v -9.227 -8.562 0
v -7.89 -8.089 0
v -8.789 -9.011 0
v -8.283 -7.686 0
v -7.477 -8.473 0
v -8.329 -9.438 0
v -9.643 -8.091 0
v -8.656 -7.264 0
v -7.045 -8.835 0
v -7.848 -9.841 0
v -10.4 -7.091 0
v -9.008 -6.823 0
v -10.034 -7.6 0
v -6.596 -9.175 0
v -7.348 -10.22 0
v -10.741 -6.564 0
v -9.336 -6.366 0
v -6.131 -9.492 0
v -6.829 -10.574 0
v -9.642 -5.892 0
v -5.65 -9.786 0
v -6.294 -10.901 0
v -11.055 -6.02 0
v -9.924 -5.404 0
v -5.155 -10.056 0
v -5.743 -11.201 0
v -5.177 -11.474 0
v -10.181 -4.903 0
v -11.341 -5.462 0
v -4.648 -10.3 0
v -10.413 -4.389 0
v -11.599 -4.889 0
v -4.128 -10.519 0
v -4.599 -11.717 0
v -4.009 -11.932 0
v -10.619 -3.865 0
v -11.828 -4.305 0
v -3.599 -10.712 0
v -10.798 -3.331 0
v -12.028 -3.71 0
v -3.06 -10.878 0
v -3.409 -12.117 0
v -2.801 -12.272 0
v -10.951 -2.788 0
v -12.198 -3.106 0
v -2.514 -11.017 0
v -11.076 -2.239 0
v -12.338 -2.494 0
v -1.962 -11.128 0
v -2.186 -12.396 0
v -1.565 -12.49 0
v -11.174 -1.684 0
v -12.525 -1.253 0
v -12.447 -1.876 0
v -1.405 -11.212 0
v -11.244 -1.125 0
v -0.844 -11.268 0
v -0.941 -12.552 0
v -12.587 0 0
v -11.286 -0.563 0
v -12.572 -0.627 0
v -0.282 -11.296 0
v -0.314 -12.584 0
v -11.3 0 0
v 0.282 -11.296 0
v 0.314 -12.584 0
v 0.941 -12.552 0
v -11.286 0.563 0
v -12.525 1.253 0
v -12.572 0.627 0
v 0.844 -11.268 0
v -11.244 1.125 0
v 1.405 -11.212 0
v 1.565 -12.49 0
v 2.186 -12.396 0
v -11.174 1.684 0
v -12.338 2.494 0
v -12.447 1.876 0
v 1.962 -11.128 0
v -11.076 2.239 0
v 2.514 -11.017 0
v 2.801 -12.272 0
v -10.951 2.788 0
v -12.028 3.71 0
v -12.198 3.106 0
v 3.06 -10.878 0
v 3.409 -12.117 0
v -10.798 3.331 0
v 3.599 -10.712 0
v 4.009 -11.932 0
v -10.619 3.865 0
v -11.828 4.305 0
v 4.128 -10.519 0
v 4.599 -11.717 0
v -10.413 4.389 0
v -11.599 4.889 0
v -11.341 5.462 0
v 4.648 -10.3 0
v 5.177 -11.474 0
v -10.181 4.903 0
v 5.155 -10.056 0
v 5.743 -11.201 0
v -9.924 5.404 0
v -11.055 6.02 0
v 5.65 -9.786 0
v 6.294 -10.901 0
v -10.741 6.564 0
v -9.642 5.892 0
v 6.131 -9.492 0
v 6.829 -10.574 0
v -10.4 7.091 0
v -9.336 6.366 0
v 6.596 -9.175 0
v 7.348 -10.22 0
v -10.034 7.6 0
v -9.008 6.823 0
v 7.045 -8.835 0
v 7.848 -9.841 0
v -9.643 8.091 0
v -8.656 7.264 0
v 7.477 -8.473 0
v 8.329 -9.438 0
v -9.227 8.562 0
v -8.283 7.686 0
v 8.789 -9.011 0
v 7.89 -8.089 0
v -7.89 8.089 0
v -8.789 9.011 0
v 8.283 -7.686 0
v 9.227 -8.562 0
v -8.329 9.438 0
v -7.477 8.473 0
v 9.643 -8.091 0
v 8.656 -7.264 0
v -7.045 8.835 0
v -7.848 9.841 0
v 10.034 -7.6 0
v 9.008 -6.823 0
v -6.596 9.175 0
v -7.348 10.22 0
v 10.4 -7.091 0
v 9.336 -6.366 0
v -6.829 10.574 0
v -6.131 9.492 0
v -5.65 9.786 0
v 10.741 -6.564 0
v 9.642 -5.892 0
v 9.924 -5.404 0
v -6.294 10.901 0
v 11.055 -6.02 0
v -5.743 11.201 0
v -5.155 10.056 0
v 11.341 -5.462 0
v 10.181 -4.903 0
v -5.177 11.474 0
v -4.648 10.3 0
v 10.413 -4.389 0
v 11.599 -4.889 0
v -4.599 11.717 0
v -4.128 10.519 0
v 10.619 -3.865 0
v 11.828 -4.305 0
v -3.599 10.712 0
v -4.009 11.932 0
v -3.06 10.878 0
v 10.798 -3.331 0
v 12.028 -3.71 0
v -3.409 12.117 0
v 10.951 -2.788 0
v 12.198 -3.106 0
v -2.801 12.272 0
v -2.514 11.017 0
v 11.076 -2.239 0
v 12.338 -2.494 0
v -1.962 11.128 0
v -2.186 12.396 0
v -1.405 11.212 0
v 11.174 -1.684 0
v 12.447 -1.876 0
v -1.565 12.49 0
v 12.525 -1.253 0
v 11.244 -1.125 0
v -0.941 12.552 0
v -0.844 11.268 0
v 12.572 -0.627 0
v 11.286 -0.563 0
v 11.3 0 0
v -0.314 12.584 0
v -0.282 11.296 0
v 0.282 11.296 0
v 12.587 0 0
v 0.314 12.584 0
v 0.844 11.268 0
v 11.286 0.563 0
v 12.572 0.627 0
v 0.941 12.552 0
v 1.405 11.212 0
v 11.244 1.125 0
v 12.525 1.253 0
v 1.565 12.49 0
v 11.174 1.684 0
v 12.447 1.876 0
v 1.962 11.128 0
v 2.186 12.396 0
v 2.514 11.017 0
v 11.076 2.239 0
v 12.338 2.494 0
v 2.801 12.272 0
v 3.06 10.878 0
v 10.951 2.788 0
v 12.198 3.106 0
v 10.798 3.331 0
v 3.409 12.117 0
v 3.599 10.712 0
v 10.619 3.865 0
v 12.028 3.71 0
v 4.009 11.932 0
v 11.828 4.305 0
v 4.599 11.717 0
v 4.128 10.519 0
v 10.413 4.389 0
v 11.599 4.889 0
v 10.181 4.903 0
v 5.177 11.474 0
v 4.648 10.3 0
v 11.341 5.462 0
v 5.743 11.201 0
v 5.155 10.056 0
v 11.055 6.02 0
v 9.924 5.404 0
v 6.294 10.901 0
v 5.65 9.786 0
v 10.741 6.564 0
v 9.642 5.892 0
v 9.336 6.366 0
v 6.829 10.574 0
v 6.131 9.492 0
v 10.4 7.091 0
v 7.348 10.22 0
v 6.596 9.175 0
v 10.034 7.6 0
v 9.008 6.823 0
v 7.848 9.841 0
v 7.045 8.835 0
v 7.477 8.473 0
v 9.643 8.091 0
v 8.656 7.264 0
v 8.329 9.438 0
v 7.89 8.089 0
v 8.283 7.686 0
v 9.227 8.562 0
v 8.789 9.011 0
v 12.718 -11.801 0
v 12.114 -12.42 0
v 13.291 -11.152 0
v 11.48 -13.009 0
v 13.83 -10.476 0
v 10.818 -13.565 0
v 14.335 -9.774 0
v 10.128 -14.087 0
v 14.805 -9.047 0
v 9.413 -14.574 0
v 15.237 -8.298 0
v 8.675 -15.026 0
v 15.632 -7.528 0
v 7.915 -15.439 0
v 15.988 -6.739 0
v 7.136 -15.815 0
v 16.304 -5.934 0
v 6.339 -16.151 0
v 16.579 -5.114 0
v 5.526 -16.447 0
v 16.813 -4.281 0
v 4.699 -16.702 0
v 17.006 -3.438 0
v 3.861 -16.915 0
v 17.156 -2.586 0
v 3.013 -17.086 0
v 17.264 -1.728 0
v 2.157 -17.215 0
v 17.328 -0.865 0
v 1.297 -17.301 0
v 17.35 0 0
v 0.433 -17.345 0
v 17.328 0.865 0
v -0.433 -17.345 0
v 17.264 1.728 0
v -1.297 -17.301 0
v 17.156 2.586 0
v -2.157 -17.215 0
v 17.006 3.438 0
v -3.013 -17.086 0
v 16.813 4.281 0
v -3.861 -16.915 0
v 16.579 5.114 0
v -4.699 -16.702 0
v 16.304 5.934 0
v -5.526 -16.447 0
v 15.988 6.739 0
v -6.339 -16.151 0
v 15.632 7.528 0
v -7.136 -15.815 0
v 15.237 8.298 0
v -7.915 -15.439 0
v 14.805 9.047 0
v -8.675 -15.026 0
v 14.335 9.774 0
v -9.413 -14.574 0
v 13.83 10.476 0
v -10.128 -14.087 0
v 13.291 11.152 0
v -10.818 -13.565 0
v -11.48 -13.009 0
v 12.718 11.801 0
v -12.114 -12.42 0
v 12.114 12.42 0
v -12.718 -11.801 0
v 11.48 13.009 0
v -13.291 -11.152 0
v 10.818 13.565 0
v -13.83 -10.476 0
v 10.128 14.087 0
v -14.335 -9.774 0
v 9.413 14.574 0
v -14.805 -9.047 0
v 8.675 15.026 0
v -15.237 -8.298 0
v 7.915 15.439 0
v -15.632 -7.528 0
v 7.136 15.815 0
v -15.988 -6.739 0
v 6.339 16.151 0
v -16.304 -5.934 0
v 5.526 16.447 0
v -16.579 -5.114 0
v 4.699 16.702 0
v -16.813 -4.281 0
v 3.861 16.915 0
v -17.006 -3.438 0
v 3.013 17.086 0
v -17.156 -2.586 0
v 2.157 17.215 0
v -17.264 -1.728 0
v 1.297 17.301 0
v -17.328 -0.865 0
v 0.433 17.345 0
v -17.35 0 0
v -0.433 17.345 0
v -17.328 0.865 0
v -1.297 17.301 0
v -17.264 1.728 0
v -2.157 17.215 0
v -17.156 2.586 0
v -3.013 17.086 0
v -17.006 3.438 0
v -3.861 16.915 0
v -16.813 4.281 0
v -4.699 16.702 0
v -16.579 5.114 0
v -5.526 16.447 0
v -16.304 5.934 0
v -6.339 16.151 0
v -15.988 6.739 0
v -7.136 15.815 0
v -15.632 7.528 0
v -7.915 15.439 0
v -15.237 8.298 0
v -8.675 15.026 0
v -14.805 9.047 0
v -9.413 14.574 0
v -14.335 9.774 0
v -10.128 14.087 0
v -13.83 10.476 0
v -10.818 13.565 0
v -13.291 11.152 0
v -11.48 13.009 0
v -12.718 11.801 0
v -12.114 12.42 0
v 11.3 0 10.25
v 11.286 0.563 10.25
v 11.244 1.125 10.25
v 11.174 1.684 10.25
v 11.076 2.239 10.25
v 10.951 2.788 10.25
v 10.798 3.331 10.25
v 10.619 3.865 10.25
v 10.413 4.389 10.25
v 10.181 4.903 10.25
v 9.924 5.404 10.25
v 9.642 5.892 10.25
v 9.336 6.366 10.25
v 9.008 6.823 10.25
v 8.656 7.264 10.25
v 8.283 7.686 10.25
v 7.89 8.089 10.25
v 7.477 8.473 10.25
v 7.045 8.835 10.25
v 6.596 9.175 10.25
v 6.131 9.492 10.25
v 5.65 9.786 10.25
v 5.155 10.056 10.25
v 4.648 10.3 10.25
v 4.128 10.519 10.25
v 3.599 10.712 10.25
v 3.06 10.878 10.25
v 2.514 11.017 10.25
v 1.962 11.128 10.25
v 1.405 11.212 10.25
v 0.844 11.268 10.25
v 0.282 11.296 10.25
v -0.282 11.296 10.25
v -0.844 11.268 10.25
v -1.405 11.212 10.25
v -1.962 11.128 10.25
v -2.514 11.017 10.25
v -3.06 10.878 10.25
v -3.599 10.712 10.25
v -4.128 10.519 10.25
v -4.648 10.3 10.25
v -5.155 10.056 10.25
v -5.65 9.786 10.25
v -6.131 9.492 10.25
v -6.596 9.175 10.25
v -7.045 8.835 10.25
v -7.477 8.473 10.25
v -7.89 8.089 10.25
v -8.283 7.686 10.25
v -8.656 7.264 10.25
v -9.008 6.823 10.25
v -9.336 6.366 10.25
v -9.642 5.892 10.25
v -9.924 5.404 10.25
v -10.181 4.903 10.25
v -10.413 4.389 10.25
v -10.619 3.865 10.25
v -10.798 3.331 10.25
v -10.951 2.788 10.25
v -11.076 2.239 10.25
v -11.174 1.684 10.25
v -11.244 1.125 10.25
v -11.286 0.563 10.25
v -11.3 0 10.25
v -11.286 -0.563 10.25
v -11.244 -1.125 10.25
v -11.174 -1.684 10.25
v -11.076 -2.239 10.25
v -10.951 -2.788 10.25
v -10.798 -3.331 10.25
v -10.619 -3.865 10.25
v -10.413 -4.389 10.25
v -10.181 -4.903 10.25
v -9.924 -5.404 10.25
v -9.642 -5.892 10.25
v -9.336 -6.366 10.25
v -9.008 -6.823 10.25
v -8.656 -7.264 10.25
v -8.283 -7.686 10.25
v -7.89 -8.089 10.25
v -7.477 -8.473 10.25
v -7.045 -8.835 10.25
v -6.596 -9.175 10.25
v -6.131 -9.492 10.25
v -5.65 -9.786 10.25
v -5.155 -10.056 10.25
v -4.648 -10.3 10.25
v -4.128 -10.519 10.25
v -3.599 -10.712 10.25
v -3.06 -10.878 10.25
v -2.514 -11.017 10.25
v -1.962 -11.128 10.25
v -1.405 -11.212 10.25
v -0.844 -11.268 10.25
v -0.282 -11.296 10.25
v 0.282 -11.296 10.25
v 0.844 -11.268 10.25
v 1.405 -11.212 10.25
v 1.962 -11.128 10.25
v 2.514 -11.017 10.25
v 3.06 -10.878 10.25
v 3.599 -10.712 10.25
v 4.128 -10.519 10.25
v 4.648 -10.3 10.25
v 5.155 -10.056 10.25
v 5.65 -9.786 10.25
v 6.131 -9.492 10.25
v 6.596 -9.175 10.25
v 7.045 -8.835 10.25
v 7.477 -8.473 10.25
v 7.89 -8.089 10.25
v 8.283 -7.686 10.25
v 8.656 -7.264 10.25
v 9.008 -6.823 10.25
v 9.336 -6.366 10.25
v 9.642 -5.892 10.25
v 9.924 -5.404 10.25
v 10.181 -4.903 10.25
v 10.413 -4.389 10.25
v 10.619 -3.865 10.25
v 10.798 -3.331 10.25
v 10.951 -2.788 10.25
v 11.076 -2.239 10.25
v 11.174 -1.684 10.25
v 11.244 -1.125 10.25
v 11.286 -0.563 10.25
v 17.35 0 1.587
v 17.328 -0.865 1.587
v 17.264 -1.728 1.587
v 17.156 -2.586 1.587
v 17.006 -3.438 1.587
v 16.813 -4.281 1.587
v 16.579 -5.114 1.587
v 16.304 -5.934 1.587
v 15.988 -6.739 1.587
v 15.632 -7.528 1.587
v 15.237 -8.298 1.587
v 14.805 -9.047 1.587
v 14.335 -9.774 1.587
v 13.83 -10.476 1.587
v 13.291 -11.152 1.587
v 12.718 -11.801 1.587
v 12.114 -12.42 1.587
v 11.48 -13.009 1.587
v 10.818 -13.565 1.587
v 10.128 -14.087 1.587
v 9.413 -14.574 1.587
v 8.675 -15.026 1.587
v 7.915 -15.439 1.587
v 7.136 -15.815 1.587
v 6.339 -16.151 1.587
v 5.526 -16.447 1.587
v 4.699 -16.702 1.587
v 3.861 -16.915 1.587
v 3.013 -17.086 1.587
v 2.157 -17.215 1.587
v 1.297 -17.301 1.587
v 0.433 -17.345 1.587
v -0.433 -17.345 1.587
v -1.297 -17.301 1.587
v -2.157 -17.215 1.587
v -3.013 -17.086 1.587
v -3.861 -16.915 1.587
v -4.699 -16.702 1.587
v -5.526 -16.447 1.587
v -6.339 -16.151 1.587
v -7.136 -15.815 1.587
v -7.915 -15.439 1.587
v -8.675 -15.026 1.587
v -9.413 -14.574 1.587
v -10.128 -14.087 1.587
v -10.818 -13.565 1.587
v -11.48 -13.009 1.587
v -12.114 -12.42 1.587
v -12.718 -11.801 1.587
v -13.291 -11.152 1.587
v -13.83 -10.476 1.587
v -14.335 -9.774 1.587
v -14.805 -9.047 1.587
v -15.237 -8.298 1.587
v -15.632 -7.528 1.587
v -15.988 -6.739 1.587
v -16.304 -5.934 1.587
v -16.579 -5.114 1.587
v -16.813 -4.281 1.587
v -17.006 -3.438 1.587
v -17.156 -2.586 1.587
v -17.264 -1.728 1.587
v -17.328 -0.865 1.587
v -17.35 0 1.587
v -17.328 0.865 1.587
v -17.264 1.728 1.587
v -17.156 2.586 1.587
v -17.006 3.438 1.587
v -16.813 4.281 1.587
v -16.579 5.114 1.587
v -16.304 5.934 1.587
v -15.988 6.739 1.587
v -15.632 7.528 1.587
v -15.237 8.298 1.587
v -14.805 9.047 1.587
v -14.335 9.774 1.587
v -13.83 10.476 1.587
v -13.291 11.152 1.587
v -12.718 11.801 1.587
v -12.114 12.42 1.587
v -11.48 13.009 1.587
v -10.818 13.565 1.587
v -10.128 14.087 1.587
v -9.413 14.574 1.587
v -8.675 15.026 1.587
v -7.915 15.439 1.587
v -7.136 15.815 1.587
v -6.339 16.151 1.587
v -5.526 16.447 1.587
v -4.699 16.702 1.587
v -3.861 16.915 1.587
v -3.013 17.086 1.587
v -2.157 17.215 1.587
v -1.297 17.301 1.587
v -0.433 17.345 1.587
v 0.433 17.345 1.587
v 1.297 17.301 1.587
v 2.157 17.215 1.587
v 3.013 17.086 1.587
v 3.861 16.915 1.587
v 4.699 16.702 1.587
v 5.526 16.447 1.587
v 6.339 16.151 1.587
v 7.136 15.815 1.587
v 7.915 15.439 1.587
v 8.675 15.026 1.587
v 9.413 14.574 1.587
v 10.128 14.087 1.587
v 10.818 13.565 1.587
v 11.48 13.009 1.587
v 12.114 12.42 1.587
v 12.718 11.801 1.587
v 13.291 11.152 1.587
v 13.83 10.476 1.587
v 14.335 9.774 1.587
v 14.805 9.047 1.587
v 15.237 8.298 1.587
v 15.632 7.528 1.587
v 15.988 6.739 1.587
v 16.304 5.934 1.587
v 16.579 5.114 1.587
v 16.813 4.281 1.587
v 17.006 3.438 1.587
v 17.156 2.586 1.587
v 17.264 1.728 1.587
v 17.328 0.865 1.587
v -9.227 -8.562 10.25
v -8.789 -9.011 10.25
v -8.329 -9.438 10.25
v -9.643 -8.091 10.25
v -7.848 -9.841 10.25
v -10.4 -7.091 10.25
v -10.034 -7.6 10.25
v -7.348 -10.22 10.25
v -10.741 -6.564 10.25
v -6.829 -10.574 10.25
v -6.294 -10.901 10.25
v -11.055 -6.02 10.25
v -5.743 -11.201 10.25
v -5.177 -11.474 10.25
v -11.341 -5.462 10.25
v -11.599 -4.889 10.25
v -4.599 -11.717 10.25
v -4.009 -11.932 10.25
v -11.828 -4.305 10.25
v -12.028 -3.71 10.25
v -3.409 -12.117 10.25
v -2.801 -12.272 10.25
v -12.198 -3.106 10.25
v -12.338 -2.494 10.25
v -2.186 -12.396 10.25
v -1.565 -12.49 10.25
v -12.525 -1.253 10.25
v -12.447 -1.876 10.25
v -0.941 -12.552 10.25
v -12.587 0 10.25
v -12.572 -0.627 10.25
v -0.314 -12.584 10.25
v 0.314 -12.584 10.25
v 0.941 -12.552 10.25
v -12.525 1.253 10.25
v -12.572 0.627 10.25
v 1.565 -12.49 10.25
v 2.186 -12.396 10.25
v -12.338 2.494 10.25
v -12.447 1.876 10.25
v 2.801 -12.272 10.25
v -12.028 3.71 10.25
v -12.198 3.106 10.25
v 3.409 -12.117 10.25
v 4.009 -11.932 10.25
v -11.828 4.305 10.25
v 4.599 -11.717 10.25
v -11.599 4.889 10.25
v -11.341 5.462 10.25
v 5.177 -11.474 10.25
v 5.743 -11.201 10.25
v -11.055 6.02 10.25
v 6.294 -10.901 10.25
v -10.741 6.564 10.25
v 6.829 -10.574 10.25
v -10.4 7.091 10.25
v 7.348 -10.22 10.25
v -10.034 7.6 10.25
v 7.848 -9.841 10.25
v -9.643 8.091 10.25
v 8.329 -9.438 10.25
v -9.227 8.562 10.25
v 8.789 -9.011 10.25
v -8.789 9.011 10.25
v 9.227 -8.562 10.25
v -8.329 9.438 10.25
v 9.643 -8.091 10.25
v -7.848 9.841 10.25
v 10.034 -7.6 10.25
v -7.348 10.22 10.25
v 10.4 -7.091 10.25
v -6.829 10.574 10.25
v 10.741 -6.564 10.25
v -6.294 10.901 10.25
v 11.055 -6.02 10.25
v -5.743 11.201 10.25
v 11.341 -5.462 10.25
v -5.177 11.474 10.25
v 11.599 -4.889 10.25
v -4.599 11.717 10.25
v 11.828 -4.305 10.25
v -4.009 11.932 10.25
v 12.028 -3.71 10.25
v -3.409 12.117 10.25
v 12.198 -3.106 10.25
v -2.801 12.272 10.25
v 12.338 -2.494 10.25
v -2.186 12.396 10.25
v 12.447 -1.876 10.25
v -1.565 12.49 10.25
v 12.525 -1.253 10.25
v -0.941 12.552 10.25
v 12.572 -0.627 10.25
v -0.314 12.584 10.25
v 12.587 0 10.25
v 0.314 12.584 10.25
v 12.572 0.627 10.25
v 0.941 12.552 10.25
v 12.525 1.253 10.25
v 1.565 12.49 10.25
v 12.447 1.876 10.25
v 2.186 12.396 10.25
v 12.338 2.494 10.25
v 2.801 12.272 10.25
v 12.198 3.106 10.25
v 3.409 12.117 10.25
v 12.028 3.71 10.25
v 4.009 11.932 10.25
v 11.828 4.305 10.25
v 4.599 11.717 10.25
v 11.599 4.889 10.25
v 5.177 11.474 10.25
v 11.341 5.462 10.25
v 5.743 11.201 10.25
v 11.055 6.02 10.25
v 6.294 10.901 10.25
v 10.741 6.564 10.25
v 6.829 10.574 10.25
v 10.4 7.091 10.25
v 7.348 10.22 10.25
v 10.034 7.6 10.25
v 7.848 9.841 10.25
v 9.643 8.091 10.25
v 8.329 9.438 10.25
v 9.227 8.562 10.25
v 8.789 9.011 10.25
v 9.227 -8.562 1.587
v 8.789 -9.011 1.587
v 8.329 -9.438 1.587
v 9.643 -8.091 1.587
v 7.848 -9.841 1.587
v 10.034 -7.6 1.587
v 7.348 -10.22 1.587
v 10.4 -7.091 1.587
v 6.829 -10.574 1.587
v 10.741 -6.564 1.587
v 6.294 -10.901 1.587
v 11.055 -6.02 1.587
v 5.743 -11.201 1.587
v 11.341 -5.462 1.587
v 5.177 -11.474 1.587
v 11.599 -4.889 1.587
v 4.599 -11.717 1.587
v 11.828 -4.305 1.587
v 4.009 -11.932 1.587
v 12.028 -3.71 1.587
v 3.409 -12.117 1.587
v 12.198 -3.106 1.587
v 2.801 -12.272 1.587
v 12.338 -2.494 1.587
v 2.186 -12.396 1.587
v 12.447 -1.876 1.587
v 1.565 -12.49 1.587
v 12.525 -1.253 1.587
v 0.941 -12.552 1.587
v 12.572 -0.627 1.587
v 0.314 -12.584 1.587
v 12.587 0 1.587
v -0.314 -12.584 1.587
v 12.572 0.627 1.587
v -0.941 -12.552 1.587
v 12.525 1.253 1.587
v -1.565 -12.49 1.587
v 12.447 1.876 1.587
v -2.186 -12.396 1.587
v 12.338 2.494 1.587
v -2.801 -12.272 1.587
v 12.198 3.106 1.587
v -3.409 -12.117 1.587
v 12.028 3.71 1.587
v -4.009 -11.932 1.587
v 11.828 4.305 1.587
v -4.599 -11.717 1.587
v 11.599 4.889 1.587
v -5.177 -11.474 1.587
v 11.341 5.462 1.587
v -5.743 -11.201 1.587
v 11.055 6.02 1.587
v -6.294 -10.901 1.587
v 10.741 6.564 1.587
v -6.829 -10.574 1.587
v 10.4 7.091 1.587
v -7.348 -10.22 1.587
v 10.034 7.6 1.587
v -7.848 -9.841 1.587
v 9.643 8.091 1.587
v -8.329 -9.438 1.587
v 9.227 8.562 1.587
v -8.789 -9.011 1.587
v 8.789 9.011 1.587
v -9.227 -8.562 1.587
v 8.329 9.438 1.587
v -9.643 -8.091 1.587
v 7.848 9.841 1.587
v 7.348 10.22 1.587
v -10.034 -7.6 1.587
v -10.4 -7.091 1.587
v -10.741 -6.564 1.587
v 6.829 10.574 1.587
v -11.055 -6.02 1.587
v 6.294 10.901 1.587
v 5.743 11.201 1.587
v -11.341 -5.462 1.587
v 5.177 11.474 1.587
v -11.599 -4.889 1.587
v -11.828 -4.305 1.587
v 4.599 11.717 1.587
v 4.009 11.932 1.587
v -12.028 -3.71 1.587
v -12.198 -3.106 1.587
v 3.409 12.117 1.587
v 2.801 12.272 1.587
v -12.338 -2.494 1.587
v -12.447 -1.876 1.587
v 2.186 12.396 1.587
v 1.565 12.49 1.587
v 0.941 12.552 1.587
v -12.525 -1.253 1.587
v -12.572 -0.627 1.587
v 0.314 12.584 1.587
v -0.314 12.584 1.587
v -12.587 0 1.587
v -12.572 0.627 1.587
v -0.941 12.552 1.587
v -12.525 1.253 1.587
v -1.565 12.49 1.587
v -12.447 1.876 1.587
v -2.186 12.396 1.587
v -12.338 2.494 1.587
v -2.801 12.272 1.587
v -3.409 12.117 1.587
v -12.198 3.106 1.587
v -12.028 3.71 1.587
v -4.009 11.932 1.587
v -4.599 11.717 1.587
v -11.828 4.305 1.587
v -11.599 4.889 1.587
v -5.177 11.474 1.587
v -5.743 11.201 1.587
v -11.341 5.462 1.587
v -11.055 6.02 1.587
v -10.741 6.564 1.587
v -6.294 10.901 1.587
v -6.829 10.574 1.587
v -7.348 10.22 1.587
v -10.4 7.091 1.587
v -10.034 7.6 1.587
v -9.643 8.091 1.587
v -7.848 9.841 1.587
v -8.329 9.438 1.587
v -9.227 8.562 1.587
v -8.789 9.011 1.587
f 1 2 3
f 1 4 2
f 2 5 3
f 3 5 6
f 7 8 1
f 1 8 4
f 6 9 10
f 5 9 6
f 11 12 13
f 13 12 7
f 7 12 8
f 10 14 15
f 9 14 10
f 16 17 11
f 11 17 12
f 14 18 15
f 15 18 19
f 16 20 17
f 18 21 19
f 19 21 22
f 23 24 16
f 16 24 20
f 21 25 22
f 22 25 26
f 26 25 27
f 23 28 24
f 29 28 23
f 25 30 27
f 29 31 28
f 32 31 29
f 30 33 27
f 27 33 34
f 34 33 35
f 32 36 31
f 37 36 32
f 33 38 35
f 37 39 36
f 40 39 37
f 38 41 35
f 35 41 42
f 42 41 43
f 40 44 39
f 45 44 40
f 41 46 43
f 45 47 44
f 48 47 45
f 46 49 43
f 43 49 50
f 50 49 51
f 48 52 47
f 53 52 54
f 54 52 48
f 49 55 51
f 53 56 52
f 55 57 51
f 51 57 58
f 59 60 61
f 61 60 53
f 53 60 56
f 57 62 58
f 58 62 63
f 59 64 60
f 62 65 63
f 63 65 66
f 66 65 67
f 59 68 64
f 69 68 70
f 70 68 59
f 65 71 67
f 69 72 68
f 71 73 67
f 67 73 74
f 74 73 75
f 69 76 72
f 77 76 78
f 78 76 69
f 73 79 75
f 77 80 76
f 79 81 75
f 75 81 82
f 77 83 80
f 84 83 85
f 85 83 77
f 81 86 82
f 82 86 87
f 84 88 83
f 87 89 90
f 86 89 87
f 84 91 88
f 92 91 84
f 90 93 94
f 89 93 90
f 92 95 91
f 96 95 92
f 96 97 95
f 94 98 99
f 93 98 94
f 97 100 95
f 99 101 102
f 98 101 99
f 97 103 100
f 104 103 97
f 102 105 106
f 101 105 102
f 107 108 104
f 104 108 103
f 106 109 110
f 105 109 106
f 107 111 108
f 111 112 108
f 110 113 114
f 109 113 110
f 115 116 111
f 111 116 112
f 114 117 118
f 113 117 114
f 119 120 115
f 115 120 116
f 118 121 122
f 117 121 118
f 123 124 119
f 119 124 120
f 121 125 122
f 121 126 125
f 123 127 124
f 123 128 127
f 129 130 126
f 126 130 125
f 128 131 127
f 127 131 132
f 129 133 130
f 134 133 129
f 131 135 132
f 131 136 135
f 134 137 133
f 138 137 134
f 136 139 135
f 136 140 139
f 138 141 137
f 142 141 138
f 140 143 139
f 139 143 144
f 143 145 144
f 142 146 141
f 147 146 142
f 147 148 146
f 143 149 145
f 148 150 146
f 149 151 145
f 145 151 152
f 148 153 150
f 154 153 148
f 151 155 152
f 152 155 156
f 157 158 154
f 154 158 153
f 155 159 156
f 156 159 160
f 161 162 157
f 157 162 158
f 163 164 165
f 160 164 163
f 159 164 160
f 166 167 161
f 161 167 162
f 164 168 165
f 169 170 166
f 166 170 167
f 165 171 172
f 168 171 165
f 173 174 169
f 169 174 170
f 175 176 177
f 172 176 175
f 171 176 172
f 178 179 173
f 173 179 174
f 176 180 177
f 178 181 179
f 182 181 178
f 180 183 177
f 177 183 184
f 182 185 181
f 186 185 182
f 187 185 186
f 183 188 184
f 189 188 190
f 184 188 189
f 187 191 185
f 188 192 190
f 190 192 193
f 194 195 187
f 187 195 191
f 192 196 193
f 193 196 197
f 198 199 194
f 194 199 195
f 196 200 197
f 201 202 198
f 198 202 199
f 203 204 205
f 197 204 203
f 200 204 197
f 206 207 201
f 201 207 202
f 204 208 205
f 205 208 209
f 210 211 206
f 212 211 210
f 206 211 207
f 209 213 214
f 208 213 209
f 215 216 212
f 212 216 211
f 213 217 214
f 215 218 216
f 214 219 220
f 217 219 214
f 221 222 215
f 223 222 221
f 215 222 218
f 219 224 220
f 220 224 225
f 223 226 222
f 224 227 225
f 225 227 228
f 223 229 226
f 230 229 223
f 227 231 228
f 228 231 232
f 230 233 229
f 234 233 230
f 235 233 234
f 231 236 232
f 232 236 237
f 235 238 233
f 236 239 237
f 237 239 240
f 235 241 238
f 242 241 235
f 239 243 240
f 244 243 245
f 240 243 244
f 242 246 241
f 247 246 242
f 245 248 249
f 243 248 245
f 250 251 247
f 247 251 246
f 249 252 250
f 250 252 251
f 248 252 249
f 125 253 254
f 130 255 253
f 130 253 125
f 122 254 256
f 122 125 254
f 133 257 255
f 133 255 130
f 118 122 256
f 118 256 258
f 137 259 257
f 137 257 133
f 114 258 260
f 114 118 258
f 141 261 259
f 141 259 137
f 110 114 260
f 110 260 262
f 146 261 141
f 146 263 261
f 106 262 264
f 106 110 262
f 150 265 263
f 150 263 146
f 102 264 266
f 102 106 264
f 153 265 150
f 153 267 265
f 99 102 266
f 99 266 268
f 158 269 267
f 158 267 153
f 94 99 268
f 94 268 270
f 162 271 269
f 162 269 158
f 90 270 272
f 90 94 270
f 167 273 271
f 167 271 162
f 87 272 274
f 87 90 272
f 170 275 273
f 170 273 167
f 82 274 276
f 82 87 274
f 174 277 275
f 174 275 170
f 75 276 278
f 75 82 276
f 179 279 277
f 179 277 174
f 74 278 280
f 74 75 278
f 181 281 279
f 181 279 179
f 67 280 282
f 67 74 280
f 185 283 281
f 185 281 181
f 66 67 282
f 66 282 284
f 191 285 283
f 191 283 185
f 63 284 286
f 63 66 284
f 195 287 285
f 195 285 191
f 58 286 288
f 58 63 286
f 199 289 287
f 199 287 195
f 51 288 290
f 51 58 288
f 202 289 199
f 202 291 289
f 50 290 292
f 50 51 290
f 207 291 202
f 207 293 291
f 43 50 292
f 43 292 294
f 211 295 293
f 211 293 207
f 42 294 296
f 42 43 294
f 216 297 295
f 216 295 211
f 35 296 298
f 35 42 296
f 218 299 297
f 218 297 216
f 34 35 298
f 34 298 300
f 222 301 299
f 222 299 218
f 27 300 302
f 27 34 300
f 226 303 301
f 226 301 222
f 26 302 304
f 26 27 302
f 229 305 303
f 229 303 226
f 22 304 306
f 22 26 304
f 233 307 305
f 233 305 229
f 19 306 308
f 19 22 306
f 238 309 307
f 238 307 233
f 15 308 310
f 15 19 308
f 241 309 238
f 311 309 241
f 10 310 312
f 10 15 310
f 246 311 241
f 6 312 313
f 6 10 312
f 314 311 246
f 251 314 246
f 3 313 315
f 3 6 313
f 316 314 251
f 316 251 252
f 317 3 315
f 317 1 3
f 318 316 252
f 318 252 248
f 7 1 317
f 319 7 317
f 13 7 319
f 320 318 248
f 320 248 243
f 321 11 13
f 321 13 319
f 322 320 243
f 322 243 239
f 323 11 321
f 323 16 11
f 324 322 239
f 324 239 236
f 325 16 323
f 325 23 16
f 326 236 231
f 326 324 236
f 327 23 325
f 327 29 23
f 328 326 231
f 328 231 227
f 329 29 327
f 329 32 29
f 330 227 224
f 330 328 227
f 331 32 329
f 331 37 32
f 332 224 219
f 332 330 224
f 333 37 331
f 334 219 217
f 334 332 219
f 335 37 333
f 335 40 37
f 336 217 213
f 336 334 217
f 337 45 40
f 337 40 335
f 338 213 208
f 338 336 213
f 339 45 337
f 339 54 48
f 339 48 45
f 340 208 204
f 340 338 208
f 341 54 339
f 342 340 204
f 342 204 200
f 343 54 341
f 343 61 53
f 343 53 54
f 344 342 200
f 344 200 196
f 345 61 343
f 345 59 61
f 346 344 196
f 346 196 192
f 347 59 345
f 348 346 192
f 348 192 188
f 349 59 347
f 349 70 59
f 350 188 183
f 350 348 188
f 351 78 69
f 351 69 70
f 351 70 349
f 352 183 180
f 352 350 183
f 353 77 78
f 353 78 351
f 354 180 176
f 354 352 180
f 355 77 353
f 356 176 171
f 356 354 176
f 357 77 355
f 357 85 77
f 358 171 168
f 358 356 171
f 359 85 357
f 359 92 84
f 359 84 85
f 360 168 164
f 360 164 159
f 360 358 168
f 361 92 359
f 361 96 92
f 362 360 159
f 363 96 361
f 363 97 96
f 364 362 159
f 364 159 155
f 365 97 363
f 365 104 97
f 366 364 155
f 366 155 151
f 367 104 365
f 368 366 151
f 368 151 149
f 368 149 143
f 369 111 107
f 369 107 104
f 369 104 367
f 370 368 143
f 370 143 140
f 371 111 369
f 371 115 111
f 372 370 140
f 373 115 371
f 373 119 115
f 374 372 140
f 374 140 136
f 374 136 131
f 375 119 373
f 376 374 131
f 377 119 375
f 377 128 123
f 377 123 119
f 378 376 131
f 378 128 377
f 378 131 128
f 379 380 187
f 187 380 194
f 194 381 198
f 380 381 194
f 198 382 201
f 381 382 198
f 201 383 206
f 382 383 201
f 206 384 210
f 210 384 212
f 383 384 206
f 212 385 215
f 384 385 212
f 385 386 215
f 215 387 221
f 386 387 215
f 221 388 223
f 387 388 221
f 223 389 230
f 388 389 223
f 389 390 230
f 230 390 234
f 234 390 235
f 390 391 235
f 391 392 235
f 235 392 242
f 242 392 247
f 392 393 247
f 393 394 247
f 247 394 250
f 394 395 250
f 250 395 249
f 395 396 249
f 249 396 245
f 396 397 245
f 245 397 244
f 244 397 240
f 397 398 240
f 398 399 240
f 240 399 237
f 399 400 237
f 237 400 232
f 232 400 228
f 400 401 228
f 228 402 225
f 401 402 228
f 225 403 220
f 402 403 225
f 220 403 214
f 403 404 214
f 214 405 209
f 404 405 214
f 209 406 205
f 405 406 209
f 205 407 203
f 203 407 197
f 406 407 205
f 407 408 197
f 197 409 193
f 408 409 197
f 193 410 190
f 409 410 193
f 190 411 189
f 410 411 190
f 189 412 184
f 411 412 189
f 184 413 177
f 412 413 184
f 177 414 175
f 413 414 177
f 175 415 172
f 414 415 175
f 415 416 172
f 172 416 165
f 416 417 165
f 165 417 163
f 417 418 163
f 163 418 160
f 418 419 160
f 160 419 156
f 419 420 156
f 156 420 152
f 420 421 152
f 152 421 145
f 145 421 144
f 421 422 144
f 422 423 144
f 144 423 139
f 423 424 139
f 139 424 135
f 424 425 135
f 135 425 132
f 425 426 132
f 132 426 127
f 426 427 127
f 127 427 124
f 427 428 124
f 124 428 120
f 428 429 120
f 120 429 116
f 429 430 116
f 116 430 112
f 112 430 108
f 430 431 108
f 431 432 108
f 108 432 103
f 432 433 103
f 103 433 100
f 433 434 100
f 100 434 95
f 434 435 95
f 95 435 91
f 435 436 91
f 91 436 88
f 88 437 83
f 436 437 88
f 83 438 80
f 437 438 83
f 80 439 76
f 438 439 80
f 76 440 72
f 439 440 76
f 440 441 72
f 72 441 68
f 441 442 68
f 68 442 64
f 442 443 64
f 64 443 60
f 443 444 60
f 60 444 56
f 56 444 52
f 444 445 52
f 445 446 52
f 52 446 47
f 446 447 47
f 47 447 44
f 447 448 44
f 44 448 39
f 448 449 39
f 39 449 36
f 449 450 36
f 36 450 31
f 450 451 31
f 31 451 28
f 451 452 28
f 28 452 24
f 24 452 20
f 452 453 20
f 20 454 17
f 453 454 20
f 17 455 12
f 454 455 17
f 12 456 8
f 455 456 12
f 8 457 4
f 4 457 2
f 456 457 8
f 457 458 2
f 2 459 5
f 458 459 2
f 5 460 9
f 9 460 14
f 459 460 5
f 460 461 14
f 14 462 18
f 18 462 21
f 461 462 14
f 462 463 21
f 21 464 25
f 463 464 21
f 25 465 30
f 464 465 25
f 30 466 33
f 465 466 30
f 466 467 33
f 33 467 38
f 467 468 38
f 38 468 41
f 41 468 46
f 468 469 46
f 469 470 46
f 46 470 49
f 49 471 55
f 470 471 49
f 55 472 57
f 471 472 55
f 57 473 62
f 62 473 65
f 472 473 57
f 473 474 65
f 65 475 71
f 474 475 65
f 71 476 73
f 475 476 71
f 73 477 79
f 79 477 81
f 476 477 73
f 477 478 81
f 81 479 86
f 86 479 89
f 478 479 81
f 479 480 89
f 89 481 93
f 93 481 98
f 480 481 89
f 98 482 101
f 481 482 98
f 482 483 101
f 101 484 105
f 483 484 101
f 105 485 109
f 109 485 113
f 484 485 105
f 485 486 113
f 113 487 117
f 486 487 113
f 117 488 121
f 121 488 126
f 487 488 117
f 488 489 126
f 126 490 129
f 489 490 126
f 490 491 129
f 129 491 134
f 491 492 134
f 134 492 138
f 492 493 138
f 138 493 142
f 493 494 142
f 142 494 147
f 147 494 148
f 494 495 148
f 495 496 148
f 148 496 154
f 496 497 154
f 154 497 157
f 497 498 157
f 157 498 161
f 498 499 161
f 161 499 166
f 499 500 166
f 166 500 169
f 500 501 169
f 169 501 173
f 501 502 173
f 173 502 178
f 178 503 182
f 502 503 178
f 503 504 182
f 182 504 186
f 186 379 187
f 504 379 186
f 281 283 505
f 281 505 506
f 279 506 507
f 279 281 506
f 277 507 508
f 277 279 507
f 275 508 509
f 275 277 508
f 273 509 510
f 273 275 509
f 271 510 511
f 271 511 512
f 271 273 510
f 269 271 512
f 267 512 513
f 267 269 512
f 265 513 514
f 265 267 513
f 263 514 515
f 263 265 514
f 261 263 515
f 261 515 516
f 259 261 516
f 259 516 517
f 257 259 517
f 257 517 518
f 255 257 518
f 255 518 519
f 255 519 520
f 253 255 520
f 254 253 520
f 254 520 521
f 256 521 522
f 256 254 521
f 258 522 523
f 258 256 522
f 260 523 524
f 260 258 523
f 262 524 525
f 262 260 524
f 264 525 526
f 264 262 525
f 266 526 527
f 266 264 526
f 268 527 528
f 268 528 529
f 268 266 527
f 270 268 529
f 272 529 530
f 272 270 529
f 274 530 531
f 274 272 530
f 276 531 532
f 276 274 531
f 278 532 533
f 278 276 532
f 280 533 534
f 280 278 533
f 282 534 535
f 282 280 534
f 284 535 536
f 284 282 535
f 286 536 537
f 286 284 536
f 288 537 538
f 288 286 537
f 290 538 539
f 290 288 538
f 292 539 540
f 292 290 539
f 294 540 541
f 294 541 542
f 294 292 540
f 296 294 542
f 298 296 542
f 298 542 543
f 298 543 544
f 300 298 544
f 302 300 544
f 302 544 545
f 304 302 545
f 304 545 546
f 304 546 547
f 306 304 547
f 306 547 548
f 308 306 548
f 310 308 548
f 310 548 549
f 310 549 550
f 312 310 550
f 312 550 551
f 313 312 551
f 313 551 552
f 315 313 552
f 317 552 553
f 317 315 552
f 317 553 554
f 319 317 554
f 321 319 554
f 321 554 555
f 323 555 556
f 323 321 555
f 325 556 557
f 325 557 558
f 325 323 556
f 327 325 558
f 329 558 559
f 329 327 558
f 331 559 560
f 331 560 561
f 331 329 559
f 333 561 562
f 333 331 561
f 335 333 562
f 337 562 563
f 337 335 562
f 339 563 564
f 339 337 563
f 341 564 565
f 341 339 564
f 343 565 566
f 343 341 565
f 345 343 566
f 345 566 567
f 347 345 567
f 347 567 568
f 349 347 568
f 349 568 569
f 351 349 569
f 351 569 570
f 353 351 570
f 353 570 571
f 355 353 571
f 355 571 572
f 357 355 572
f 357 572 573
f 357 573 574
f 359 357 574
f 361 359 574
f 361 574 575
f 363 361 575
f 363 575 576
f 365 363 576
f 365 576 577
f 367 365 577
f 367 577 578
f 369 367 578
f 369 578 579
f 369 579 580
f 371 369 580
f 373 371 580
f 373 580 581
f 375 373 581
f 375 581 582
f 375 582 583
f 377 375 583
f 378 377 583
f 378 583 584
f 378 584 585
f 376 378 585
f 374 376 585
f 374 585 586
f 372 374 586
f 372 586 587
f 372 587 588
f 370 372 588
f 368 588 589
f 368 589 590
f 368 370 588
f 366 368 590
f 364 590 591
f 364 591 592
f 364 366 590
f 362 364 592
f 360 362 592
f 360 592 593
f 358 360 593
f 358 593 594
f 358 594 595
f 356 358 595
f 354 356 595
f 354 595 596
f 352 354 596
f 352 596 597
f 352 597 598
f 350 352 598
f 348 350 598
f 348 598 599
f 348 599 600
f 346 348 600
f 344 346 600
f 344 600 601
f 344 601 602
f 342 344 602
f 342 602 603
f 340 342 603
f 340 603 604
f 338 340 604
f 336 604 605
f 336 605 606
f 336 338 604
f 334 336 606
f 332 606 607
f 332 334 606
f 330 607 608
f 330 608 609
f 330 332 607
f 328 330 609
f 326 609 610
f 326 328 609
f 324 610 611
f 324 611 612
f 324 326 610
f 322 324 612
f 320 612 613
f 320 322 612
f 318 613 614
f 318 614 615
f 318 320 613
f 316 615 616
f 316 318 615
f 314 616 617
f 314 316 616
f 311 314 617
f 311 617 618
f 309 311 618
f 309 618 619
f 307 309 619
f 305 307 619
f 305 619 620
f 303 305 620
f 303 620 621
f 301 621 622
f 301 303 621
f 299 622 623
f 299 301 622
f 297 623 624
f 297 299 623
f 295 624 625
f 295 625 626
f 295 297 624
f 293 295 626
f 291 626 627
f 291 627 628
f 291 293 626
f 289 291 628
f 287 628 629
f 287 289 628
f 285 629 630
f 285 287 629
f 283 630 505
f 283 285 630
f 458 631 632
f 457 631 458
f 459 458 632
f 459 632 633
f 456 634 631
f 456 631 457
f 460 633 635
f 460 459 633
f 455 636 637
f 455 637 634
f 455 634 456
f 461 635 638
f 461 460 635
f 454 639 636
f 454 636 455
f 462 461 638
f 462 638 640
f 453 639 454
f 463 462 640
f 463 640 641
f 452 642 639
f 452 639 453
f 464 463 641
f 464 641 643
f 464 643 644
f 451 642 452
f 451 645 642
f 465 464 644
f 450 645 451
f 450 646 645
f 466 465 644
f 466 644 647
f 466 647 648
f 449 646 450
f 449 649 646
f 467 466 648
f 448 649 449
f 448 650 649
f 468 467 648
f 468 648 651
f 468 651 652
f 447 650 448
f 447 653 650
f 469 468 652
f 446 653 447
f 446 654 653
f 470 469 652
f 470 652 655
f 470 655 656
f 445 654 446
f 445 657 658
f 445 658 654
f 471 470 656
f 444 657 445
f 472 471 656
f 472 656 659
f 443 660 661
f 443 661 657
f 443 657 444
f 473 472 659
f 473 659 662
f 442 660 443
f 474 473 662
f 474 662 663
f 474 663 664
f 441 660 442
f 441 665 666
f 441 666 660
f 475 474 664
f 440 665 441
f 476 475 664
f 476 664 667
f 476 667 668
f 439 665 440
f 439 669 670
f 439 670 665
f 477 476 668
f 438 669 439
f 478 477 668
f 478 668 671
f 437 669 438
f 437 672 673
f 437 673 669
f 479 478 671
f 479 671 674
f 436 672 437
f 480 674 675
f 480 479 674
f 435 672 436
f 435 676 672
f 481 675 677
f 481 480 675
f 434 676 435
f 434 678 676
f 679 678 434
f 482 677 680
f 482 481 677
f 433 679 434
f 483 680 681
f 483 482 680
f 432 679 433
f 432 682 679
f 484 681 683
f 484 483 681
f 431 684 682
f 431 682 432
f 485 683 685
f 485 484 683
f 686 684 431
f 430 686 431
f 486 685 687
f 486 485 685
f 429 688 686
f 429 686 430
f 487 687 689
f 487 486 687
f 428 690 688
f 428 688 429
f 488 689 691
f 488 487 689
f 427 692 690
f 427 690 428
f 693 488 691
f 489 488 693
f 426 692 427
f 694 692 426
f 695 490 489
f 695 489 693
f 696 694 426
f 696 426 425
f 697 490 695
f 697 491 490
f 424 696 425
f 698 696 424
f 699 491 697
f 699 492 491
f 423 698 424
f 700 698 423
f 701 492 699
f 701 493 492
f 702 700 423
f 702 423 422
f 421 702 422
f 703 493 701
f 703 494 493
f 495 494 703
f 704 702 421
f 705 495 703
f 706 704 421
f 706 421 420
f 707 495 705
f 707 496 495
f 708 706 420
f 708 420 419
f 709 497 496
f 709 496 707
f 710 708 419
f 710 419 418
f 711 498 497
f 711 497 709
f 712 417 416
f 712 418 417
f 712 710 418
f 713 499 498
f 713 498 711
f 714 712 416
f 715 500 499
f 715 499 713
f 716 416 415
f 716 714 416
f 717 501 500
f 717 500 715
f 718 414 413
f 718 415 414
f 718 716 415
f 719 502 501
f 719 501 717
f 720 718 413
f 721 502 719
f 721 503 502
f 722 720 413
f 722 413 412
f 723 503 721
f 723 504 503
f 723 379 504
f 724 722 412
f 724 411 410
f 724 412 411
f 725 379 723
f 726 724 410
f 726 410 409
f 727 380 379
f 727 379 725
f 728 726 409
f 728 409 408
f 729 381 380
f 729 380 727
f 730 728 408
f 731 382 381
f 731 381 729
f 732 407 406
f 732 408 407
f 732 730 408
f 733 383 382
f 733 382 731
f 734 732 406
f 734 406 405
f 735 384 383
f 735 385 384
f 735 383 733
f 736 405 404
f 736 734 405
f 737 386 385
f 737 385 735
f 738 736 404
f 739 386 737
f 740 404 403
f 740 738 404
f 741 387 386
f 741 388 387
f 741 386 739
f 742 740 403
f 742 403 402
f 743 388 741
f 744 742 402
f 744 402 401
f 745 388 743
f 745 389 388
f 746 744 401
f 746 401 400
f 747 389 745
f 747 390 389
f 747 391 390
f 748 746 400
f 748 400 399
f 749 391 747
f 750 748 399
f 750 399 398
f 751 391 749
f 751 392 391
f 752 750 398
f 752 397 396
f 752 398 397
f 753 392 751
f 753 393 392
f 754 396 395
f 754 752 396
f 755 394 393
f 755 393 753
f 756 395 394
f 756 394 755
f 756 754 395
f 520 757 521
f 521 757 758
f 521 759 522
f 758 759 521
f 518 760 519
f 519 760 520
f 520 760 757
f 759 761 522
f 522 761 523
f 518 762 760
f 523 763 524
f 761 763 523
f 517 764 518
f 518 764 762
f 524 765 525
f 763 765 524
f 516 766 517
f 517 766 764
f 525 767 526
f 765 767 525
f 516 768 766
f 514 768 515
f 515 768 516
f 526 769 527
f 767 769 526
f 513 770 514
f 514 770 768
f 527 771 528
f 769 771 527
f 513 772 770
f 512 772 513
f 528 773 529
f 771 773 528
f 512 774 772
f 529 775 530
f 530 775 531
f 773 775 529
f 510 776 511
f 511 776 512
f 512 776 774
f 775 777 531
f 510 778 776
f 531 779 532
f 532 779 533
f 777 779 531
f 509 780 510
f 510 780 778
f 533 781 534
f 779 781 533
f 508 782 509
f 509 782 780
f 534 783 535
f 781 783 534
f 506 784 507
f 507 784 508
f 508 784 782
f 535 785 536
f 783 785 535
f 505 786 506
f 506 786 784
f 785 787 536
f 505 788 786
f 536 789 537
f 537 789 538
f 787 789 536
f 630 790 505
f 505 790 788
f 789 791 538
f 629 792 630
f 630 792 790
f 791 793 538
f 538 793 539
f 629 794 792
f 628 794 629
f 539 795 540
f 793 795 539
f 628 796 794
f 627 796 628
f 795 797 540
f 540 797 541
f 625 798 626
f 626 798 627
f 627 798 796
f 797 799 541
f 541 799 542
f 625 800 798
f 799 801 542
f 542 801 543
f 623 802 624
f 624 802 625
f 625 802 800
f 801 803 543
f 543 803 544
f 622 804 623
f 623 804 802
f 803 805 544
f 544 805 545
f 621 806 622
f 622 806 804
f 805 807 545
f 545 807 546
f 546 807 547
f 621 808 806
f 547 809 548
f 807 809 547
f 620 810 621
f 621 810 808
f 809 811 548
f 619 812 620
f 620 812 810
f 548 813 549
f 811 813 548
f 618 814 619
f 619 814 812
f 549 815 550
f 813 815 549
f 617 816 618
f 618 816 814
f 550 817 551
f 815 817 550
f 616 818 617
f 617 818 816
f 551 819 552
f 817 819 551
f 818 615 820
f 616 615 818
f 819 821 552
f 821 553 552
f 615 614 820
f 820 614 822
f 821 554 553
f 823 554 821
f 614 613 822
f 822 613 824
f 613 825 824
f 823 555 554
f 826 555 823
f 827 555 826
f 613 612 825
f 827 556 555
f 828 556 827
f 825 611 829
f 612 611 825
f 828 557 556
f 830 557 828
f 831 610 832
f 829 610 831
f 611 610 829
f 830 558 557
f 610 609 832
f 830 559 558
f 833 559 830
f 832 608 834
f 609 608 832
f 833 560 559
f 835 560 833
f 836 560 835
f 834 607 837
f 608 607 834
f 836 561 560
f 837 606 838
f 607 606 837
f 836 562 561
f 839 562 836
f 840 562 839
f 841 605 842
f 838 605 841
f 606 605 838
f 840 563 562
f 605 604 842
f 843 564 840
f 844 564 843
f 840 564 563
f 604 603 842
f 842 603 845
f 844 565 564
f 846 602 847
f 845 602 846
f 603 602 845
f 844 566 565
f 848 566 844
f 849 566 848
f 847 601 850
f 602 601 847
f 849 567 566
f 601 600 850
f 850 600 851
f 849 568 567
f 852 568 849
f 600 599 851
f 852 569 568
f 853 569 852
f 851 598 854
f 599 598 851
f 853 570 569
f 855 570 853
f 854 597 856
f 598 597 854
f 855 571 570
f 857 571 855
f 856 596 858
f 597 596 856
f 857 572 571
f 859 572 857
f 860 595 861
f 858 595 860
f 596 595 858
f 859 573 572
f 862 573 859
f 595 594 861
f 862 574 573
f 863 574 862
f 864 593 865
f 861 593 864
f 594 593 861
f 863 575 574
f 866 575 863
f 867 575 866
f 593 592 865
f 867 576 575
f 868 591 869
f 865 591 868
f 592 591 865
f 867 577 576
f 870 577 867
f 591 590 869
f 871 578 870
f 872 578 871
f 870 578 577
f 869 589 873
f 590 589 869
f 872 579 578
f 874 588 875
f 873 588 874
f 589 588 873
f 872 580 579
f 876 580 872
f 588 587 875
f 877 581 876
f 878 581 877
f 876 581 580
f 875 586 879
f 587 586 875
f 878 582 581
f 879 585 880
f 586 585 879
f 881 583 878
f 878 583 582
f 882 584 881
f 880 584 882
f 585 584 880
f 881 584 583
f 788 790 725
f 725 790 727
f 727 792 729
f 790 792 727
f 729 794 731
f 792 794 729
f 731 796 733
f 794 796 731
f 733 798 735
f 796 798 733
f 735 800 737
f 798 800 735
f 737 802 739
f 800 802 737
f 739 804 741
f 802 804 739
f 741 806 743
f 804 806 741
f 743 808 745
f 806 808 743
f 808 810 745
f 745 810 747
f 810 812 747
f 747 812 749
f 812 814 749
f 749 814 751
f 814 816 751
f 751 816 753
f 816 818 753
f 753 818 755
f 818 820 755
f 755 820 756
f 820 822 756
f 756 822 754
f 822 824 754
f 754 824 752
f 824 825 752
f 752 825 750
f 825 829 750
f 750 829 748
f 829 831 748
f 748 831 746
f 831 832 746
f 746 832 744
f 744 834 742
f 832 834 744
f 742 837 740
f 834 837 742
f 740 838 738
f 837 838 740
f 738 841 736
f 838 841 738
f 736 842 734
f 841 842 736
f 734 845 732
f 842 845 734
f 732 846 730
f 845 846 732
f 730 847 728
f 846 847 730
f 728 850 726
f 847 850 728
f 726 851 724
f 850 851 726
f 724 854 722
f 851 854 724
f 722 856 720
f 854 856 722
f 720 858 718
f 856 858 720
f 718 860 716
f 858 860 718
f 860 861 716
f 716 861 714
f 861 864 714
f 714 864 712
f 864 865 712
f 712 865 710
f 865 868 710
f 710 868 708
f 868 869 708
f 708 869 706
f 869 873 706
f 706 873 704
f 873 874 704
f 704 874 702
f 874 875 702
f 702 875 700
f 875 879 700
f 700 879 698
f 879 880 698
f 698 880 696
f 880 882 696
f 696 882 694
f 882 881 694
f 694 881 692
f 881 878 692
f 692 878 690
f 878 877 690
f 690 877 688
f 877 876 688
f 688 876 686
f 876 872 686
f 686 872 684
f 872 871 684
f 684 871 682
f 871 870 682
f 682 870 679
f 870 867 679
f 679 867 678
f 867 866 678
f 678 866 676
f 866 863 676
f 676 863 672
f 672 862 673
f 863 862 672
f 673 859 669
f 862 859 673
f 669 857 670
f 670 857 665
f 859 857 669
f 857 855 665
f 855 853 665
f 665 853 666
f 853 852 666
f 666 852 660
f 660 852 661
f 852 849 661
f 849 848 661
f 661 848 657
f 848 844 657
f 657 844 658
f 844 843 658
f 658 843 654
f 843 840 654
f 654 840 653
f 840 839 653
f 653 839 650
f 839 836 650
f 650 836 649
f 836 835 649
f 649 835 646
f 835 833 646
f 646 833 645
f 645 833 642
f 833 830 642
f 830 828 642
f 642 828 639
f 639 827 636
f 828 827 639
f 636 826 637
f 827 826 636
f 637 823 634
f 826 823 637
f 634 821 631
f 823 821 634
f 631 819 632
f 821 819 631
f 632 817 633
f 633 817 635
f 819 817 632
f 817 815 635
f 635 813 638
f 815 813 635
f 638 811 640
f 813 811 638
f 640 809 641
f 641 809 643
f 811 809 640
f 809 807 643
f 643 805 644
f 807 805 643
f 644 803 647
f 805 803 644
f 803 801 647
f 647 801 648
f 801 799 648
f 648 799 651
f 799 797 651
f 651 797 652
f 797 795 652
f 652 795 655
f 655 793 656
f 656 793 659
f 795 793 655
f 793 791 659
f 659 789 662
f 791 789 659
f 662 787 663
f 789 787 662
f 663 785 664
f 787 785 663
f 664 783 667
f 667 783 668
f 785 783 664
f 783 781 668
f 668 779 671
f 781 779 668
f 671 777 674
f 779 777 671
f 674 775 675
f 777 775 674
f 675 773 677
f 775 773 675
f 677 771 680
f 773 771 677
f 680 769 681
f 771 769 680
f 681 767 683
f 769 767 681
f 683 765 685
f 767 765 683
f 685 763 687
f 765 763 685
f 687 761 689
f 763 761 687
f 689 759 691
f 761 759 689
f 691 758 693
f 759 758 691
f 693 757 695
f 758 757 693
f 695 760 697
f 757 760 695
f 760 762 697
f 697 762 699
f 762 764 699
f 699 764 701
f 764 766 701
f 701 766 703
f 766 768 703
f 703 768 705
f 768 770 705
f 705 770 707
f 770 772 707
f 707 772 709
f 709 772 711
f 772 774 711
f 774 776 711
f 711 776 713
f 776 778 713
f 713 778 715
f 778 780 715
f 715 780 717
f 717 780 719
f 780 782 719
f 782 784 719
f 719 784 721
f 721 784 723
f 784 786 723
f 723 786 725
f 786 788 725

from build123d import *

# Parameters (mm, degrees)
SKETCH_R        = 12.5875
PAD_DEPTH       = 10.25
SKETCH005_R     = 17.35
PAD002_DEPTH    = 1.5875
SKETCH004_R     = 11.3
POCKET002_DEPTH = 10.251


with BuildPart() as part:
    # Sketch → Pad (new body)
    with BuildSketch(Plane.XY):
        Circle(SKETCH_R)
    extrude(amount=PAD_DEPTH)

    # Sketch005 (on Face2 of Pad) → Pad002 (new body)
    with BuildSketch(Plane(origin=(0, 0, 0), x_dir=(1, 0, 0), z_dir=(0, 0, -1))):
        Circle(SKETCH005_R)
    extrude(amount=-PAD002_DEPTH)

    # Sketch004 (on Face3 of Pad) → Pocket002 (cut, through all)
    with BuildSketch(Plane.XY.offset(10.25)):
        Circle(SKETCH004_R)
    extrude(amount=-POCKET002_DEPTH, mode=Mode.SUBTRACT)


solid = part.part
